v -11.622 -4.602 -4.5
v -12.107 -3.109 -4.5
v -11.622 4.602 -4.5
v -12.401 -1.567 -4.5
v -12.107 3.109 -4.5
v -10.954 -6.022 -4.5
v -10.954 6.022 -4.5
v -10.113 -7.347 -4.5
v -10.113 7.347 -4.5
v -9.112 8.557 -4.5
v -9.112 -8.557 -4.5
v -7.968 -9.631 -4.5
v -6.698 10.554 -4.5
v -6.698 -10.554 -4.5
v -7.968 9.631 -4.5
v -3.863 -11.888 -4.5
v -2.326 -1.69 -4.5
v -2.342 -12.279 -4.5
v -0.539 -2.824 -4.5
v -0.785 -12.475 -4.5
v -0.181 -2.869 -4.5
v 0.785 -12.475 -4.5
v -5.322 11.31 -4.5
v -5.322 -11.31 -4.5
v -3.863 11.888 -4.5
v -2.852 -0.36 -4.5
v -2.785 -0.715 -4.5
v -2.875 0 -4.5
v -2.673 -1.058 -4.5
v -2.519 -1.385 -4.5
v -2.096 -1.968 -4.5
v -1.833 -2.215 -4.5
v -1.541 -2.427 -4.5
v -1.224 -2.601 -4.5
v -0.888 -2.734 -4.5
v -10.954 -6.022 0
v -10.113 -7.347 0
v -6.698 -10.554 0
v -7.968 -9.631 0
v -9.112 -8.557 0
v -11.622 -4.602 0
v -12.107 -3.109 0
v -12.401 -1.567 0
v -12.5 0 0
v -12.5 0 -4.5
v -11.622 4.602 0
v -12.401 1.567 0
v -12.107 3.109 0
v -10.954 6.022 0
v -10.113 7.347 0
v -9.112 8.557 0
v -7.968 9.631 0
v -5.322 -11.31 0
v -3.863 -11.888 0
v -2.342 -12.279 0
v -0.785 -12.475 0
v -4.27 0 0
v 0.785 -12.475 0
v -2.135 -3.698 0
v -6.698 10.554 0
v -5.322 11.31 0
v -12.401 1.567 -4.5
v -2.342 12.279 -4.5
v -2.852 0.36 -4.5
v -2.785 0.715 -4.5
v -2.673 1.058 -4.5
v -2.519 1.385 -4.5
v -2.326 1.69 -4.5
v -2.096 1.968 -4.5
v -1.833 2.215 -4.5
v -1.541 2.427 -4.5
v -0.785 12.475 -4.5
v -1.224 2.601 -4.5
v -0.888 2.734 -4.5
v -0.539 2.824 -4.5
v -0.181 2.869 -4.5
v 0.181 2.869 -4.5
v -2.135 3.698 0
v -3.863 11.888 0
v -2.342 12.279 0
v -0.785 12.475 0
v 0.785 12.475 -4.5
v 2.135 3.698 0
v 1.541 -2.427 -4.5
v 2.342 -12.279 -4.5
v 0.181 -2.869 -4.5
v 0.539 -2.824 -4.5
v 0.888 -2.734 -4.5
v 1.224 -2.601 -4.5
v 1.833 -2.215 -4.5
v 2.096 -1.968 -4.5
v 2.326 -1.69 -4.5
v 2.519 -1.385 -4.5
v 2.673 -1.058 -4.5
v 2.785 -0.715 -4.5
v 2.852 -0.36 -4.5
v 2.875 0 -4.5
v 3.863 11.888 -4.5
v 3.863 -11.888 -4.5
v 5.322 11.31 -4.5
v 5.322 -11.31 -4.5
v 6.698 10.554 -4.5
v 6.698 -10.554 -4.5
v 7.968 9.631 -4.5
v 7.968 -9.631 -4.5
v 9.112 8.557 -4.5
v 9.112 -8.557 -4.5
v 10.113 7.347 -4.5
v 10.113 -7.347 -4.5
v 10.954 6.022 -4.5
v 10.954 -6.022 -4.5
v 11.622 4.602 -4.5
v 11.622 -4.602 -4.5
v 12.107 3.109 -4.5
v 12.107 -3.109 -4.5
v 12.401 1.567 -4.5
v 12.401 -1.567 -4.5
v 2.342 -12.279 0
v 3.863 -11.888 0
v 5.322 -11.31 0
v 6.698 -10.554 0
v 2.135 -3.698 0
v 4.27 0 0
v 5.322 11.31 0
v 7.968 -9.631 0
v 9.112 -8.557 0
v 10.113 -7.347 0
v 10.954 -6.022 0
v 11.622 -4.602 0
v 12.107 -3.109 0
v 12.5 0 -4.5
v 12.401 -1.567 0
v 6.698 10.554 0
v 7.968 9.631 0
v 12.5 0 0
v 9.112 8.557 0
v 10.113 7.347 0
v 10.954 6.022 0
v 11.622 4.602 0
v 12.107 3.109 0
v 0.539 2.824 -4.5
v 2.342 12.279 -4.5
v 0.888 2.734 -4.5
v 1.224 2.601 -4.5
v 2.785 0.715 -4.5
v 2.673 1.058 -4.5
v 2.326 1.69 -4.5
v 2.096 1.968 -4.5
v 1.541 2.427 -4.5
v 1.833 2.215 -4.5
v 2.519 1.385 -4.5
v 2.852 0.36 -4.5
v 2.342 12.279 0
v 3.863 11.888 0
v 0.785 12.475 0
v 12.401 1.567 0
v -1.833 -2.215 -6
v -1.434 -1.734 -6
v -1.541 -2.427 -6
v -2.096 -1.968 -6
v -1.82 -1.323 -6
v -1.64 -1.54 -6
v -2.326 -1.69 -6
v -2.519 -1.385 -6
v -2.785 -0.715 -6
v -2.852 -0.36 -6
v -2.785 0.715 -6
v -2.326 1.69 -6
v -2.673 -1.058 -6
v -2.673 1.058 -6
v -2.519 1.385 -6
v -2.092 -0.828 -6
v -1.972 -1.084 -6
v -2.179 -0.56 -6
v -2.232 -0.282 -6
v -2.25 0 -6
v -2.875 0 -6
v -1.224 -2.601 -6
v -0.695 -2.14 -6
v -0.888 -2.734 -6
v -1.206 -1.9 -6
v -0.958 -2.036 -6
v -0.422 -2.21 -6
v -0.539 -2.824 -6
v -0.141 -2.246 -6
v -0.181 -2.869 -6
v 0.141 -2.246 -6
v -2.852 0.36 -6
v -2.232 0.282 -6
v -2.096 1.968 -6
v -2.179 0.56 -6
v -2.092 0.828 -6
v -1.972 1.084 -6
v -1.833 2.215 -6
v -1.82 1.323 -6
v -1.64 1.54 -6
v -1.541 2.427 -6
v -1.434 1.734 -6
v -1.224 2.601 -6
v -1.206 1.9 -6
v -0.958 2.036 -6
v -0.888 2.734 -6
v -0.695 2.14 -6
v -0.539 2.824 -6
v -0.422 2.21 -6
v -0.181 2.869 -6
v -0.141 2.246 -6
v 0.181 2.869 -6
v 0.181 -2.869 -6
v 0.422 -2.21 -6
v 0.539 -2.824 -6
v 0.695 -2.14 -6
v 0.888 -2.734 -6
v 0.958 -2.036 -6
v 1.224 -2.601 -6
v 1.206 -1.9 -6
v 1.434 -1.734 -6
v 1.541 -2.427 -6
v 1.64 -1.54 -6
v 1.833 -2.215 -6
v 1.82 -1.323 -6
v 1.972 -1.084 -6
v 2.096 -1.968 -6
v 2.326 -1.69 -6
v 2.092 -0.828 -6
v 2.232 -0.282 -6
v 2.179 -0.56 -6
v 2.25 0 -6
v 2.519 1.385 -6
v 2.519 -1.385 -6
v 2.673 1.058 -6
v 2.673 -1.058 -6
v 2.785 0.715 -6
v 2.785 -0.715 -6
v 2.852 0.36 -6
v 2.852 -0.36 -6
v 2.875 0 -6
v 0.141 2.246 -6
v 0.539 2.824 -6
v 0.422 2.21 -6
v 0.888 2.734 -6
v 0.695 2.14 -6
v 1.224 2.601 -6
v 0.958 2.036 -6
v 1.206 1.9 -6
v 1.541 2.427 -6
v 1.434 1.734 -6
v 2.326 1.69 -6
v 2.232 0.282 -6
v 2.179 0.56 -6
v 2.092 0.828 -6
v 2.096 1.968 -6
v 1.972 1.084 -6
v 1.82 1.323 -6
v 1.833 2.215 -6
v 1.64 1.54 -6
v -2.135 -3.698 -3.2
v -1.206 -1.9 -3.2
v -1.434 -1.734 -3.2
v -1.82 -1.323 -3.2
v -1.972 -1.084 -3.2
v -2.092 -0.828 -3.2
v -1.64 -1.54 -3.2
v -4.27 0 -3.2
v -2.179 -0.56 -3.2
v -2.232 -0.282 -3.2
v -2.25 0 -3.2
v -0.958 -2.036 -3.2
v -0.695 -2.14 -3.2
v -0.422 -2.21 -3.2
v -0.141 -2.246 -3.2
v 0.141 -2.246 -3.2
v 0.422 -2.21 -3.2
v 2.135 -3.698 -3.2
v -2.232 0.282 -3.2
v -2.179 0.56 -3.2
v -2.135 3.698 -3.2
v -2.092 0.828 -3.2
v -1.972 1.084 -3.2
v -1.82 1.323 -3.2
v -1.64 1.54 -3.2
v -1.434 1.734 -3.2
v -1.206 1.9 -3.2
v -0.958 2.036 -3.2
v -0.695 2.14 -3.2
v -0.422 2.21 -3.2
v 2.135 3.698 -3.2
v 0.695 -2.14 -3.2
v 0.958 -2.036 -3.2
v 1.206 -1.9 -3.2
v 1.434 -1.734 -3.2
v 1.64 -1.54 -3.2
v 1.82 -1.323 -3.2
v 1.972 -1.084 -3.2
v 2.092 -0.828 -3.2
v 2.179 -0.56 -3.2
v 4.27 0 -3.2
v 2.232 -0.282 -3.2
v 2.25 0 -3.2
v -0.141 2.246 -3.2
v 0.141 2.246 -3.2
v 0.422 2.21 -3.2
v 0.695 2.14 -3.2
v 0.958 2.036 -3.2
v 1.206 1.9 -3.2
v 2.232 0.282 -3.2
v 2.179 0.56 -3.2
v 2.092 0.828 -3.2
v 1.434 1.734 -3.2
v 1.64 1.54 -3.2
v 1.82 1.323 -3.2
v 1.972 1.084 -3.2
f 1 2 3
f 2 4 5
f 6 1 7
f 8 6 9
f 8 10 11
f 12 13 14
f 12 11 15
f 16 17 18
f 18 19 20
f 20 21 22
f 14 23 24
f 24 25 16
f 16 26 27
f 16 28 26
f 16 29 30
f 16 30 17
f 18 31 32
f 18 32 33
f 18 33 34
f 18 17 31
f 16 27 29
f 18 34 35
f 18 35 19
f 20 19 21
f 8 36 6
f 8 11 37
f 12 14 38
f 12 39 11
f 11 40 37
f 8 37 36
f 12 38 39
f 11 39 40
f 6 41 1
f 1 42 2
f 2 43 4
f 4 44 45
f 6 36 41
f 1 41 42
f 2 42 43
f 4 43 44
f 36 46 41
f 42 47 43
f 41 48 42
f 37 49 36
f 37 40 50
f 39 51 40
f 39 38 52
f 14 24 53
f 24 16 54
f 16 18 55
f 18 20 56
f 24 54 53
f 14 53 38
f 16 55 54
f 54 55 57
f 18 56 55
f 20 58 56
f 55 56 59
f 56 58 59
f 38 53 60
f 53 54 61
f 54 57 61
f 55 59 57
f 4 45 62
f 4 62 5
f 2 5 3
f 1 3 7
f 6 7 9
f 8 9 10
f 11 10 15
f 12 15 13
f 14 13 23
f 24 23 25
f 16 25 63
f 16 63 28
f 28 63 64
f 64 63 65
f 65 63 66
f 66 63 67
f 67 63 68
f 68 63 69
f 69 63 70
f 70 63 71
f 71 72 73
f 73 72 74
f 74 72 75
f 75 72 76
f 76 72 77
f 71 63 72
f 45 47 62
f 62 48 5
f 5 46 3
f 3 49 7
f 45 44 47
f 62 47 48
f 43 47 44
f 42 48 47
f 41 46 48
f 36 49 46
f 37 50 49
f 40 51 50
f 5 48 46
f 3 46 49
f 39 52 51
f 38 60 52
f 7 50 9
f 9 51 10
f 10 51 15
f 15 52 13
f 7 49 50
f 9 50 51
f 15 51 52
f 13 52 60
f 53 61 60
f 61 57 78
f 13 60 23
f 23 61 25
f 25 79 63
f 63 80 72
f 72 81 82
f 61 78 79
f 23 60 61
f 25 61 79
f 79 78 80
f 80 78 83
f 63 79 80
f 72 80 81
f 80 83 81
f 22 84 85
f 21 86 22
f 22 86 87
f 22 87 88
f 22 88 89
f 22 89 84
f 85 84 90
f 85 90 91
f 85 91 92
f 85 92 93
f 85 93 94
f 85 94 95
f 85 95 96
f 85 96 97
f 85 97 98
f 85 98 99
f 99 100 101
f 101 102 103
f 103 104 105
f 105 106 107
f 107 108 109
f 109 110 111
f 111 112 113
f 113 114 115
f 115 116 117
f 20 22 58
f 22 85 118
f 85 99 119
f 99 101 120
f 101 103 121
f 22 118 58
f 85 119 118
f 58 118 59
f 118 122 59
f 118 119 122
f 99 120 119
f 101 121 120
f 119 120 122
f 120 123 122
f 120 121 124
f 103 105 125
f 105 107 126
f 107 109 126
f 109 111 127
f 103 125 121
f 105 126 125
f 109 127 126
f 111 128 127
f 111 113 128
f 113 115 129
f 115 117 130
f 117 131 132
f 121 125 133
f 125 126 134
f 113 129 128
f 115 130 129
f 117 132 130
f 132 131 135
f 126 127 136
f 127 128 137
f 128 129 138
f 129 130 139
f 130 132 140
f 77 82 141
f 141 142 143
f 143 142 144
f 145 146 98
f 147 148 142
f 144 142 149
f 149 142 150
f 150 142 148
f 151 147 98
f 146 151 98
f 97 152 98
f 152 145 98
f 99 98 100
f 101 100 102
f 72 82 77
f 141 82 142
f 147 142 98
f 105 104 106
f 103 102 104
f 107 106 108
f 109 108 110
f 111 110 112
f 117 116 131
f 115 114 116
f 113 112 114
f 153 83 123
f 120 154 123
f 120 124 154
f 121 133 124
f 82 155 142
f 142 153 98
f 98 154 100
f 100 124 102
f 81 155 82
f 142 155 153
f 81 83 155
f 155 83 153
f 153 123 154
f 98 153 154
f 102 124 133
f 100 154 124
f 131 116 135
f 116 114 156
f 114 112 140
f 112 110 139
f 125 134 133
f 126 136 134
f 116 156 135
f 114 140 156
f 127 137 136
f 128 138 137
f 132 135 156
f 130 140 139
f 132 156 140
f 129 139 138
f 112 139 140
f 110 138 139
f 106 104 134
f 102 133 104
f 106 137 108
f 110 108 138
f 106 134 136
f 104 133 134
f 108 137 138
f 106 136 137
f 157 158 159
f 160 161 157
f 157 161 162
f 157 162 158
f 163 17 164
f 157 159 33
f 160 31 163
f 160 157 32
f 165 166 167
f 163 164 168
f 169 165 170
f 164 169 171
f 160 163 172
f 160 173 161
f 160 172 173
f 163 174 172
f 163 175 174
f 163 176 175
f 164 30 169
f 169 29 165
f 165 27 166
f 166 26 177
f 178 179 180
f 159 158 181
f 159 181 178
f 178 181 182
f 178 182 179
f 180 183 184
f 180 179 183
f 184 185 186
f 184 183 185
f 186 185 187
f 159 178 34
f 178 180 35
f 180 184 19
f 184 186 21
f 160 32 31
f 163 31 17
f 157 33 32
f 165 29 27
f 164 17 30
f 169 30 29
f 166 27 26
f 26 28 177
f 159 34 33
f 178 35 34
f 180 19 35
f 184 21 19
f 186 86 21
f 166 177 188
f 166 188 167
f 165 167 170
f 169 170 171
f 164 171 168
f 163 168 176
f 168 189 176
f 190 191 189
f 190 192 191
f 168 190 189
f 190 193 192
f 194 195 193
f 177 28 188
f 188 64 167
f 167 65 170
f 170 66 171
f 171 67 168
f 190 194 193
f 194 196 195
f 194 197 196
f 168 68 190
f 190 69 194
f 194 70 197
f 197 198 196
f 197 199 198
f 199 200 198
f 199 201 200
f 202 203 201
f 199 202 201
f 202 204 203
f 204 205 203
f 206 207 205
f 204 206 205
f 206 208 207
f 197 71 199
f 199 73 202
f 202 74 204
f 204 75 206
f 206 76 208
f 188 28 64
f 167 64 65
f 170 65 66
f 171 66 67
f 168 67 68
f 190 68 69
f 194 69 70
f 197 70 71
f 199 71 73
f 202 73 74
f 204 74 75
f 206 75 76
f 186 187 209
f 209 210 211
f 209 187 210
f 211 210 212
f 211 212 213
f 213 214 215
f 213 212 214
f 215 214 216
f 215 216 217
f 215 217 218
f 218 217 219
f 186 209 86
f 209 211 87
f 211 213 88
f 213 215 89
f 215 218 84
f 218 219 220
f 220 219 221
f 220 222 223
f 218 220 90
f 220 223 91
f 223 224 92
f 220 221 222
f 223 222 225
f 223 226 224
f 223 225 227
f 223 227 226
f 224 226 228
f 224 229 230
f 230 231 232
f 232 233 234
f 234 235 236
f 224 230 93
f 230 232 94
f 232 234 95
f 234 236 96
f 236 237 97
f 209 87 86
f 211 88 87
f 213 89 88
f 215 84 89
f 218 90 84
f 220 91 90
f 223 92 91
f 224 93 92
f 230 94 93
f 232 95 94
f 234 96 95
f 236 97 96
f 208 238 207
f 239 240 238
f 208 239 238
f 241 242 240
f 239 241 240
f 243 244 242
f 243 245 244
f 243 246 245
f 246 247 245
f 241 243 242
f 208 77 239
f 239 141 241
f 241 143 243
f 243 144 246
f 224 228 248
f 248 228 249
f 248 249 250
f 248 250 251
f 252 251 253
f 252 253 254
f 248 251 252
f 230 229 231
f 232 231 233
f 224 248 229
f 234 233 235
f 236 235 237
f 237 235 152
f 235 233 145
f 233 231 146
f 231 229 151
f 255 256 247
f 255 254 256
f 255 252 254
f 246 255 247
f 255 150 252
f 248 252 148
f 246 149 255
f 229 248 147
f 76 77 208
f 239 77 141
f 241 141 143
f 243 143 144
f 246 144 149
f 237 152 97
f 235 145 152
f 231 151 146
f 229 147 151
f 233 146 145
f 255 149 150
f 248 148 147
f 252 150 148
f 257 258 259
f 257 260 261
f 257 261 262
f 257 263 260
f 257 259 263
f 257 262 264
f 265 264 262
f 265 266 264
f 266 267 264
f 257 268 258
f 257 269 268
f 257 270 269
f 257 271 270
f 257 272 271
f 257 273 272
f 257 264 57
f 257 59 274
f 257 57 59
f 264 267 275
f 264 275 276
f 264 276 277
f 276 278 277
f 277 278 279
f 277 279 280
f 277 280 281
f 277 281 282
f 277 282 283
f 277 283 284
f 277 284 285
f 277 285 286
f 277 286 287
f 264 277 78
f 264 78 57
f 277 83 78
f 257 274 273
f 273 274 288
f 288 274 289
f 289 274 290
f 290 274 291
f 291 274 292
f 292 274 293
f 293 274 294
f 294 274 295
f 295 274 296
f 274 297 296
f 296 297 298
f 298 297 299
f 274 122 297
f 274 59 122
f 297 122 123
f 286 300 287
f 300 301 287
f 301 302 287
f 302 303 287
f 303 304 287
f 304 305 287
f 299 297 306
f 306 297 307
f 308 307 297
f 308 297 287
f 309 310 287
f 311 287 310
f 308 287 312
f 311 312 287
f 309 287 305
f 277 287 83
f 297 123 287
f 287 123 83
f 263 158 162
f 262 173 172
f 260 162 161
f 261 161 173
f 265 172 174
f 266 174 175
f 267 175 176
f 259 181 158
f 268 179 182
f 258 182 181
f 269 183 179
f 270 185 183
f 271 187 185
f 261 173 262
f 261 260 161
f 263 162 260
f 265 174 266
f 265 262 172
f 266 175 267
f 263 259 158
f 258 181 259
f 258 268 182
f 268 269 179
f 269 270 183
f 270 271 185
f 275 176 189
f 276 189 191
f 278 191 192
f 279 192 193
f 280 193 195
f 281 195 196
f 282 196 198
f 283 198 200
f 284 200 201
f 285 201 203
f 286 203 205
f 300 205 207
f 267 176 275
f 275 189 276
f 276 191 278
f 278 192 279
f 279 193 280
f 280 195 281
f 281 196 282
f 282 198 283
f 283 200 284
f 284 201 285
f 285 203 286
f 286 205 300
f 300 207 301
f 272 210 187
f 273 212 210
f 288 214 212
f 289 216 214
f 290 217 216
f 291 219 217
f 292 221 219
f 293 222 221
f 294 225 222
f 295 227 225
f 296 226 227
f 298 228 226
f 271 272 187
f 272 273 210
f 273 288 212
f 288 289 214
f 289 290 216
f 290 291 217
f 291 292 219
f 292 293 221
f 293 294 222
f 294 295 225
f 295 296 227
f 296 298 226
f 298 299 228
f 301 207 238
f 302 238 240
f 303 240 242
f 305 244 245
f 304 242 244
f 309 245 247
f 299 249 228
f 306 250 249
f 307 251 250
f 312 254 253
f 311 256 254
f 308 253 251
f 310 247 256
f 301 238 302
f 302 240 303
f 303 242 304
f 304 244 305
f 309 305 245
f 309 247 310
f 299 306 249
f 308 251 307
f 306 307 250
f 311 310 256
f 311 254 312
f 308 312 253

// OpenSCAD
$fn = 50;

difference() {
	union() {
		translate(v = [0, 0, -4.5]) {
			cylinder(h = 4.5, r = 12.5);
		}
		#translate(v = [0, 0, -6.0]) {
			cylinder(h = 6, r = 2.875);
		}
	}
	union() {
		translate(v = [0, 0, 0]) {
			rotate(a = [0, 0, 0]) {
				difference() {
					union() {
						translate(v = [0, 0, -3.2]) {
							linear_extrude(height = 3.2) {
								polygon(points = [[4.2698, 0.0], [2.1349000000000005, 3.697755269078796], [-2.134899999999999, 3.6977552690787965], [-4.2698, 5.228996902999369e-16], [-2.134900000000002, -3.6977552690787956], [2.1348999999999974, -3.697755269078798]]);
							}
						}
					}
					union();
				}
			}
		}
		#translate(v = [0, 0, -100.0]) {
			cylinder(h = 200, r = 2.25);
		}
	}
}
